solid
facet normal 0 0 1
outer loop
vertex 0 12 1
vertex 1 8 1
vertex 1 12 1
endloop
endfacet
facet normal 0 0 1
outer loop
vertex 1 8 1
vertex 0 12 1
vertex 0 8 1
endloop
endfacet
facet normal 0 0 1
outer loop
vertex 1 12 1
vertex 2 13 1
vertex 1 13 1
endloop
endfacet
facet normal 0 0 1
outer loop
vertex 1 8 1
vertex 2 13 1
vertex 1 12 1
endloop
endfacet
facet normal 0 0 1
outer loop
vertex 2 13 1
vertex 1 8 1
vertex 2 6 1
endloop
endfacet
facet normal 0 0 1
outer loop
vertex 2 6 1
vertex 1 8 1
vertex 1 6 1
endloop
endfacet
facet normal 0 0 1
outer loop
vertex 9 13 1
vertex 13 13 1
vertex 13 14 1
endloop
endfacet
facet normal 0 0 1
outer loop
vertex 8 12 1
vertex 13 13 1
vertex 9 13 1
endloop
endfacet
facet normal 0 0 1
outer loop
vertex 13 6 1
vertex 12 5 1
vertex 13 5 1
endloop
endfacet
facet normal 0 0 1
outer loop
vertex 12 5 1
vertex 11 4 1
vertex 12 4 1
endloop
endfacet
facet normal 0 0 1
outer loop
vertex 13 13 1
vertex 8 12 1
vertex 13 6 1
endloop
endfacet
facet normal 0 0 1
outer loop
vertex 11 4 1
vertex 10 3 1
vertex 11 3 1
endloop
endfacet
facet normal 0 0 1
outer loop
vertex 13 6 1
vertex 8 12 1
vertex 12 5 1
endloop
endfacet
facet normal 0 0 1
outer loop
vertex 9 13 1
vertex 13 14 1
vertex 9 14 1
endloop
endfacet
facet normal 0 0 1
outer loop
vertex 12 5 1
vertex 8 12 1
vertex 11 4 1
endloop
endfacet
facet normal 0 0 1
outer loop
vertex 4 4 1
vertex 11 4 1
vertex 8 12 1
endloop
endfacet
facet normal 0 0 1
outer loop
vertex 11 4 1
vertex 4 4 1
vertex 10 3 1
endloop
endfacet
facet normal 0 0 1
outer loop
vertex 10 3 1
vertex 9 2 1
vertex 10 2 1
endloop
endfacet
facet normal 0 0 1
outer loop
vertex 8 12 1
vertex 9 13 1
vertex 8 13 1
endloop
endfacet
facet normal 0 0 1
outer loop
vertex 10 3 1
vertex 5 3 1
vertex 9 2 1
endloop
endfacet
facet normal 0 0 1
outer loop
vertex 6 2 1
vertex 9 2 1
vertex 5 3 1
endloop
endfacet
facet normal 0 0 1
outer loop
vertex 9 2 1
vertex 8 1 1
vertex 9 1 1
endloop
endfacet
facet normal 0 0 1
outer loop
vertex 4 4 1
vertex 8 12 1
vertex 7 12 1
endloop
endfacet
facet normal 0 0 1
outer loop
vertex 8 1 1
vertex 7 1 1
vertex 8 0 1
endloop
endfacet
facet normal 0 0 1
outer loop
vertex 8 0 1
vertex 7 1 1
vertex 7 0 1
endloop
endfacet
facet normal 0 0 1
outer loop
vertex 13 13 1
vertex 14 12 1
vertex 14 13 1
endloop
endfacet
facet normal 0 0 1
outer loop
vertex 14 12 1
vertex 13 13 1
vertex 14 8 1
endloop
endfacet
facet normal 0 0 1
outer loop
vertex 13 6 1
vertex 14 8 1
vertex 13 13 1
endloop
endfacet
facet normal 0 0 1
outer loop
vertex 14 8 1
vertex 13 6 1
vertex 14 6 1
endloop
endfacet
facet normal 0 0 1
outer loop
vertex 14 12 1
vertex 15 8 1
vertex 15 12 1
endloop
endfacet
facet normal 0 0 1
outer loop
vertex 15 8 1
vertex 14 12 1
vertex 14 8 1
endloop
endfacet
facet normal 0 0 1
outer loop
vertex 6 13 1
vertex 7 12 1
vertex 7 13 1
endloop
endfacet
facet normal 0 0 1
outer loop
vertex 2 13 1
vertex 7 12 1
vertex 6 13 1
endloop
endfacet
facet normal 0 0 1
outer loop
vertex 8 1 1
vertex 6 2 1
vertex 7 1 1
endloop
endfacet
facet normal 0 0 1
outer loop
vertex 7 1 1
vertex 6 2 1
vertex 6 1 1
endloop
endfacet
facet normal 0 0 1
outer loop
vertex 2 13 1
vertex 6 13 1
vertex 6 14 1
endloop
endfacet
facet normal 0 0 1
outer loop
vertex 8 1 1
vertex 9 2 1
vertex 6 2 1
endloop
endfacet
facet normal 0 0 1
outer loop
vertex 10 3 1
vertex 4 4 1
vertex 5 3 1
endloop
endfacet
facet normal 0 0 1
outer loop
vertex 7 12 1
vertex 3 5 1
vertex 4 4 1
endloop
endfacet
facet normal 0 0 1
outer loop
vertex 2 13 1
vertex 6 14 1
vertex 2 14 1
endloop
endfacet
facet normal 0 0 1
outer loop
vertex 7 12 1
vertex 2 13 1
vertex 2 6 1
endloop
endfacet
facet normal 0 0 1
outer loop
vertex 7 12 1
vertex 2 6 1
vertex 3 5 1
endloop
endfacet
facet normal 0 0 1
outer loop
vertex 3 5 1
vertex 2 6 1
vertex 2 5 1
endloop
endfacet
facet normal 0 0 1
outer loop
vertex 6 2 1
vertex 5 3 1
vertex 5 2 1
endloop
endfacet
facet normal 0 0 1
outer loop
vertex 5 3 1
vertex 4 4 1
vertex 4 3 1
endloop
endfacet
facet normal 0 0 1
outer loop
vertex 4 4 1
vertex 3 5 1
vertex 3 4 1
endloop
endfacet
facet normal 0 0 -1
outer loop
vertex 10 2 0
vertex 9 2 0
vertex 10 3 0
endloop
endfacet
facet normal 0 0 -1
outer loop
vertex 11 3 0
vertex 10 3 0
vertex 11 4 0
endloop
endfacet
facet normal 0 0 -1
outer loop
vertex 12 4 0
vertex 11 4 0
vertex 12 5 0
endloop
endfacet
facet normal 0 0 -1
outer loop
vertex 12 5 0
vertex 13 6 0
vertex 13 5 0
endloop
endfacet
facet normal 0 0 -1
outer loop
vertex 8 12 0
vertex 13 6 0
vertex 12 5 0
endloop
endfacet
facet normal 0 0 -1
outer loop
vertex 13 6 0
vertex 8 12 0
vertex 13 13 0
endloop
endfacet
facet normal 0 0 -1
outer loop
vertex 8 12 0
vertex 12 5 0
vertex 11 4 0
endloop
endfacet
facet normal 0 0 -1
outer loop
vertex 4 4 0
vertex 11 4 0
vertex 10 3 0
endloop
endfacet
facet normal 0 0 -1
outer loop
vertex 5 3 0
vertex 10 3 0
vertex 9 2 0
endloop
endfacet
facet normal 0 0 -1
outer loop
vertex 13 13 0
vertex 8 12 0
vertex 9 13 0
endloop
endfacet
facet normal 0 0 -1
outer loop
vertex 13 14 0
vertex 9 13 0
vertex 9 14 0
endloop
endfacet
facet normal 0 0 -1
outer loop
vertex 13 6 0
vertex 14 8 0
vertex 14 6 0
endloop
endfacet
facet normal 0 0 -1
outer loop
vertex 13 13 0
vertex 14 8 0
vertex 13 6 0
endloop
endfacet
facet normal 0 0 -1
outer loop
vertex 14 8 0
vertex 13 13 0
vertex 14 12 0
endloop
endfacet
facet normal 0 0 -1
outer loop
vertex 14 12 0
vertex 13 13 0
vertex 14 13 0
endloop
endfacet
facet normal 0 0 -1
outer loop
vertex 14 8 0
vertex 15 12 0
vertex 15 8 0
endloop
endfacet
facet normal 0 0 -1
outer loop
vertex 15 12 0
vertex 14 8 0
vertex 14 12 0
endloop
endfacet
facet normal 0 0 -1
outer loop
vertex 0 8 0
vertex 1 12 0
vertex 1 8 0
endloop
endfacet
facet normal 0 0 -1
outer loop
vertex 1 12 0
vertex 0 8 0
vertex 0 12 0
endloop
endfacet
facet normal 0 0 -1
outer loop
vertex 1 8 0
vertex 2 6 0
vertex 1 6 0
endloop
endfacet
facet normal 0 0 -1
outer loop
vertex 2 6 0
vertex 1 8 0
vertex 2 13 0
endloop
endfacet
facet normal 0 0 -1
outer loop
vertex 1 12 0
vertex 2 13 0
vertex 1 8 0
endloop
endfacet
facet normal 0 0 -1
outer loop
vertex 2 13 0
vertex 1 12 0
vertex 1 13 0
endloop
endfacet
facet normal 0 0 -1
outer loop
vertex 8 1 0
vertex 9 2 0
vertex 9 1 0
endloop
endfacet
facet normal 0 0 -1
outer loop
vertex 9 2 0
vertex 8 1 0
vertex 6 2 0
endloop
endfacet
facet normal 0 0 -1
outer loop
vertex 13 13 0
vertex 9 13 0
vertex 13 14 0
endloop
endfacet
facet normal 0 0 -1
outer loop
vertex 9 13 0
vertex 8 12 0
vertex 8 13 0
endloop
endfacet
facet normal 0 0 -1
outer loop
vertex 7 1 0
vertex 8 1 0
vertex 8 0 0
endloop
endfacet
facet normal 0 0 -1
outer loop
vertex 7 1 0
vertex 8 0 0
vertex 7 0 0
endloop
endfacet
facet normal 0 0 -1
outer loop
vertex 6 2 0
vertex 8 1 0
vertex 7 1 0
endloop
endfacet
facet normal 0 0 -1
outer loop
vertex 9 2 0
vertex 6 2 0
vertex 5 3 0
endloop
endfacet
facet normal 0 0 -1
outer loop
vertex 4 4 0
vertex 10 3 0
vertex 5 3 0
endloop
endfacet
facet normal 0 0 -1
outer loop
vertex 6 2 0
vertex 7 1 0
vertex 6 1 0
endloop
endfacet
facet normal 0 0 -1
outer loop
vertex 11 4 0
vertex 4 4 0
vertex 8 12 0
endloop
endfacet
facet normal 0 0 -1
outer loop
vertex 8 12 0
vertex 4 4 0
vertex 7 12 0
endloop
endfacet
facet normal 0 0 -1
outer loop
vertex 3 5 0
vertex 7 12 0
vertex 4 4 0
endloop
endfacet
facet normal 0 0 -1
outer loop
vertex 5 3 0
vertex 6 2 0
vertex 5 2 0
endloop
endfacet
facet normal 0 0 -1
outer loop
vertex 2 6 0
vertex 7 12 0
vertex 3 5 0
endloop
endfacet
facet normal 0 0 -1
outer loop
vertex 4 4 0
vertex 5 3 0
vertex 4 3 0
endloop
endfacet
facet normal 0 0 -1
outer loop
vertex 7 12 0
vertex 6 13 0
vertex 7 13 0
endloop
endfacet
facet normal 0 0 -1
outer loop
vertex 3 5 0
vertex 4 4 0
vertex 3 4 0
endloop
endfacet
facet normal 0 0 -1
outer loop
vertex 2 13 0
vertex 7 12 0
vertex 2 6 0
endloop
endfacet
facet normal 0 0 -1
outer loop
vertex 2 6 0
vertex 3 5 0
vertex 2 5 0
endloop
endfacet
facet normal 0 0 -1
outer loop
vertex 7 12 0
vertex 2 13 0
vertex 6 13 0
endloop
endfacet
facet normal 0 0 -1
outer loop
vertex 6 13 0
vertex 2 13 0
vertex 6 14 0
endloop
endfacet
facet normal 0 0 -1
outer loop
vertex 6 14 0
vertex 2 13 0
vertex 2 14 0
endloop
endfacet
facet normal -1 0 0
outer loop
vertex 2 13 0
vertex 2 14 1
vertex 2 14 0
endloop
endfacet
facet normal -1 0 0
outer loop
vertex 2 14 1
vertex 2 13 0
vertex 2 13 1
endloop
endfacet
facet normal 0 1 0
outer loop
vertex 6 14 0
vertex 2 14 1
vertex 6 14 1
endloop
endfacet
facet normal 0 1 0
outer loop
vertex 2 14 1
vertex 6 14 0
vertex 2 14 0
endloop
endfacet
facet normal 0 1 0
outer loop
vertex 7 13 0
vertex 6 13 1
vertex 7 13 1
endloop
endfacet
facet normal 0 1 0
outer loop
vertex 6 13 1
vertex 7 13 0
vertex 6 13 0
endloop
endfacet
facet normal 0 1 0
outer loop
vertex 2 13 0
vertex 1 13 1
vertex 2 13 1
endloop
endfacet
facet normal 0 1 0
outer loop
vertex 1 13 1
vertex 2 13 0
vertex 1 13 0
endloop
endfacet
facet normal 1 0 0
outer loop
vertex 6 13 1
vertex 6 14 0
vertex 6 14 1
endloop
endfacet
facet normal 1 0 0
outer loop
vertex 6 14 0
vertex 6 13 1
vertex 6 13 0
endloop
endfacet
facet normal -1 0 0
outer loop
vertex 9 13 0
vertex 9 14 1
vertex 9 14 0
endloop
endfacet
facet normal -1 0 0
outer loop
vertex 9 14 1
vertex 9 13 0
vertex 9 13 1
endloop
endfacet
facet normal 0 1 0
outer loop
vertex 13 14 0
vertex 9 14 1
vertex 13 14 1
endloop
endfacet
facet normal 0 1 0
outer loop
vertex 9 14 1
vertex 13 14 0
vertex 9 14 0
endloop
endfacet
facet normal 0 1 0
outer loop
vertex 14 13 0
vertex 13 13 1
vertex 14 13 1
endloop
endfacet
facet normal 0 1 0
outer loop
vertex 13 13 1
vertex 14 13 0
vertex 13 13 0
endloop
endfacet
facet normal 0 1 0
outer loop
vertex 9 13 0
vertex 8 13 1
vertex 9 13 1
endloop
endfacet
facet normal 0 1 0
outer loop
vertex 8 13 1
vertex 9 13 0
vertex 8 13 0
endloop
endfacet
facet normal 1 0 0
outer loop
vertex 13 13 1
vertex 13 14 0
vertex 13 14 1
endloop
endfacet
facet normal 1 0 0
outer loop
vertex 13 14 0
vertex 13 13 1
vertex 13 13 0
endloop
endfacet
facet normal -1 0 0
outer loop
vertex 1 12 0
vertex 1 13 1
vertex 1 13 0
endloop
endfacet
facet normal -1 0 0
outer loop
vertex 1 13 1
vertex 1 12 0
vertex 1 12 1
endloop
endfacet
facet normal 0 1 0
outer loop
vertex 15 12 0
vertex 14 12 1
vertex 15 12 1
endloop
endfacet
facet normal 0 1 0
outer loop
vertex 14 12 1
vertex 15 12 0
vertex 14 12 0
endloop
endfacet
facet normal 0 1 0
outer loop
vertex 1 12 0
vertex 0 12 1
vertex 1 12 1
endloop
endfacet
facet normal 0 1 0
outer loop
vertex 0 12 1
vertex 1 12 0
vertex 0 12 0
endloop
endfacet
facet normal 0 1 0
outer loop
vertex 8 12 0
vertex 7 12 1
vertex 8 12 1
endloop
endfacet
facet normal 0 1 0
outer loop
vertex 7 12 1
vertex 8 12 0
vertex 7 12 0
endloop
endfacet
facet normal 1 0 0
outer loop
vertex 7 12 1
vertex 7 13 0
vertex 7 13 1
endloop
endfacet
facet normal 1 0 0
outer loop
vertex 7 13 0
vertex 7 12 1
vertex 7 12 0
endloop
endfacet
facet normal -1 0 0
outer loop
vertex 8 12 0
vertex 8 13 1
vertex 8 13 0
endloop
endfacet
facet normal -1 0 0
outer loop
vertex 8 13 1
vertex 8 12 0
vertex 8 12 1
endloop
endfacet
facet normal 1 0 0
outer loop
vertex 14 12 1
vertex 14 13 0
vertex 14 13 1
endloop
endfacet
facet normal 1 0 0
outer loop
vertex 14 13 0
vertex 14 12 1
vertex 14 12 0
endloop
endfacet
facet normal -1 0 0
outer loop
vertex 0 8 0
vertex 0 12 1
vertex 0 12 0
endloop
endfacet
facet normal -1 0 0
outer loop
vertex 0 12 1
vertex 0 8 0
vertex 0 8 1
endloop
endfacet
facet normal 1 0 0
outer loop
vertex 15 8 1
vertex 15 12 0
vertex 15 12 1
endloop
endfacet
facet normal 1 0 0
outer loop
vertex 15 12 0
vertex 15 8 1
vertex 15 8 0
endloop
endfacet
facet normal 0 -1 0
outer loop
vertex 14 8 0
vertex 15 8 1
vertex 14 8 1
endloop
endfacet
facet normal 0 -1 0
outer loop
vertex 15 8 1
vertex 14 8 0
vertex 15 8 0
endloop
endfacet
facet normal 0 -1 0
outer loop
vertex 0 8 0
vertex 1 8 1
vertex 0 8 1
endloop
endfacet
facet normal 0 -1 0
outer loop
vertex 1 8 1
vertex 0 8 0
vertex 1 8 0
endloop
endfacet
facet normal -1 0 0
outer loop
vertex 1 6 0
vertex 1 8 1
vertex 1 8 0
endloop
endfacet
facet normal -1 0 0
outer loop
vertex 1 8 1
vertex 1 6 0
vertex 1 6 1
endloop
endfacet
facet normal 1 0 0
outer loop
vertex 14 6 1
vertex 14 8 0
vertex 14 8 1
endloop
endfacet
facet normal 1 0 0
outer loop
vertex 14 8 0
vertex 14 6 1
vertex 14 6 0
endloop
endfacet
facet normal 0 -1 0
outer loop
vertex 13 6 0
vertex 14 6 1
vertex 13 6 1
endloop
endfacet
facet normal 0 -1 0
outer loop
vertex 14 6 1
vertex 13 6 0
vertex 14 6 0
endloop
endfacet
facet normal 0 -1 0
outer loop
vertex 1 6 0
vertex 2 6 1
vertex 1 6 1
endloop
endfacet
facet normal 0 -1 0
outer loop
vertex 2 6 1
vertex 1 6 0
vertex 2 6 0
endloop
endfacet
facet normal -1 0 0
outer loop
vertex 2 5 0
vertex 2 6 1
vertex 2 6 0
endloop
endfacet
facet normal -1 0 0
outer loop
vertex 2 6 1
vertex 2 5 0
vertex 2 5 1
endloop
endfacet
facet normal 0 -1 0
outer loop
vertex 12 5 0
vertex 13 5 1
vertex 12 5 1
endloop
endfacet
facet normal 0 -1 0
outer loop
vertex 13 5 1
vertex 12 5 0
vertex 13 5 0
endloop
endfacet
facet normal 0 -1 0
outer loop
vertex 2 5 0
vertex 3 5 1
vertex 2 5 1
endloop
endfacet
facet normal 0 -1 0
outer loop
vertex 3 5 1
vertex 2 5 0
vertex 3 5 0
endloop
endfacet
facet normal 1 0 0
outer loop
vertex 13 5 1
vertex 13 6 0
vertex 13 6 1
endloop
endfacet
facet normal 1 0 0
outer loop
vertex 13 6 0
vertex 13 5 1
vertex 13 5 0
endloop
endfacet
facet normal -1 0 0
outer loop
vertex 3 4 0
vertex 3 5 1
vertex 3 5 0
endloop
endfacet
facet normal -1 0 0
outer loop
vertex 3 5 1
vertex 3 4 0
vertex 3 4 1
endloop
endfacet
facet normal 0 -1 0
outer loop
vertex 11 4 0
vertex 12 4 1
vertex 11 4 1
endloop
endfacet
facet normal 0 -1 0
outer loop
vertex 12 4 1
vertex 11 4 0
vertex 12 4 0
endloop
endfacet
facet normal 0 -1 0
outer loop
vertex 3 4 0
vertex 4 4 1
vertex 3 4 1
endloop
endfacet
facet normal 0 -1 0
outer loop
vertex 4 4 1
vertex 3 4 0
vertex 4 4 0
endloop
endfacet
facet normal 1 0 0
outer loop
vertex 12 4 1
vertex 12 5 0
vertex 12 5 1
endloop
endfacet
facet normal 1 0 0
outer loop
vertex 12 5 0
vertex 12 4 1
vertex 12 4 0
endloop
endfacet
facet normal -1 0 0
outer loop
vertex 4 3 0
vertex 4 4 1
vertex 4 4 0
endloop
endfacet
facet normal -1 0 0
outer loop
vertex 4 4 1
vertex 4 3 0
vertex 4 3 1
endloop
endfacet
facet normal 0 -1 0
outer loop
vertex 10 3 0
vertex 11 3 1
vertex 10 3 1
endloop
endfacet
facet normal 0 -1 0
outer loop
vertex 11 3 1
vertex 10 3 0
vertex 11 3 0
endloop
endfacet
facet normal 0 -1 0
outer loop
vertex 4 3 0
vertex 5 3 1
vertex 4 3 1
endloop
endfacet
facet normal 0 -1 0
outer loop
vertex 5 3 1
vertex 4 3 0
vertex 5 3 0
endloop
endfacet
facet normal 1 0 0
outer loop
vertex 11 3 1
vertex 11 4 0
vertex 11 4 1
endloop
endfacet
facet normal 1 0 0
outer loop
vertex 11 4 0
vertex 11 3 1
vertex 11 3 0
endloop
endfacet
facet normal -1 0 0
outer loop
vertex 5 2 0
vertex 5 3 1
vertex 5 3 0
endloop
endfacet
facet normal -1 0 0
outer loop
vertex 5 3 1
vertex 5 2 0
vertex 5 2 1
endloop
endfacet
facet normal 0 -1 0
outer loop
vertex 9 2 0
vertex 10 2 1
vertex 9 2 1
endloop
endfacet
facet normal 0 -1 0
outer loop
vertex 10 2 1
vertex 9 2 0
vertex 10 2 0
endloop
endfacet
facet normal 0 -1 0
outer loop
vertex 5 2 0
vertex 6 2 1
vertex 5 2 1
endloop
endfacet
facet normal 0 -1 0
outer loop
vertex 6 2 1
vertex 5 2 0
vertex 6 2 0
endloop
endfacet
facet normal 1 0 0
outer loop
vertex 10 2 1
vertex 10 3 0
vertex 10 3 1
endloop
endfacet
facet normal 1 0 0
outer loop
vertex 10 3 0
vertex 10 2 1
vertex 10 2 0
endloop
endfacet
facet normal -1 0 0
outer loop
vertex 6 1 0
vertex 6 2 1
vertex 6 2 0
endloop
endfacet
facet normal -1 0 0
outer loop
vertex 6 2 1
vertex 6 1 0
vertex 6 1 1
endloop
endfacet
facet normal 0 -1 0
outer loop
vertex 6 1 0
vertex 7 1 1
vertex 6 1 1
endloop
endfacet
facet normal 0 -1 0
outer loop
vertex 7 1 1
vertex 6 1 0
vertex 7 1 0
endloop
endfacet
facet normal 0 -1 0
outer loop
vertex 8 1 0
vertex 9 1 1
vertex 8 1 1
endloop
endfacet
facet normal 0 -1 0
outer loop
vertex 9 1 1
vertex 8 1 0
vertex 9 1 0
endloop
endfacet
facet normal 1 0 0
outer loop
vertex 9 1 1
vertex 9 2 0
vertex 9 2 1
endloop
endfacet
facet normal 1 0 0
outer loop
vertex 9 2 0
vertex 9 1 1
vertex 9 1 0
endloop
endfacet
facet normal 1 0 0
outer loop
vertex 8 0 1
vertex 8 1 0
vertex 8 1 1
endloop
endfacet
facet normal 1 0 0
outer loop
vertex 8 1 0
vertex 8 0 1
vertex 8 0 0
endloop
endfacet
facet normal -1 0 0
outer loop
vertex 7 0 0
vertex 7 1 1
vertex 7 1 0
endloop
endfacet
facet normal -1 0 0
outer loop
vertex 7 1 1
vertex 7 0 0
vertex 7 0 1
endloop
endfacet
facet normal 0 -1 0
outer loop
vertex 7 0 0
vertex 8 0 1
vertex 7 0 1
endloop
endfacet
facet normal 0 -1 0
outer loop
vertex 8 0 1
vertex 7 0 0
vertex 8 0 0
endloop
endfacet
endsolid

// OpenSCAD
/*
 * 3D Pixel Art - Heart 1
 * Copyright (c) 2019 Anar Software LLC. < http://anars.com >
 *
 * This program is free software: you can redistribute it and/or modify it under
 * the terms of the GNU General Public License as published by the Free Software
 * Foundation, either version 3 of the License, or (at your option) any later
 * version.
 *
 * This program is distributed in the hope that it will be useful, but WITHOUT
 * ANY WARRANTY; without even the implied warranty of MERCHANTABILITY or FITNESS
 * FOR A PARTICULAR PURPOSE. See the GNU General Public License for more details.
 *
 * You should have received a copy of the GNU General Public License along with
 * this program. If not, see < http://www.gnu.org/licenses/ >
 *
 */

/* [Global] */

/* [Pixel Settings] */

// Pixel Length (X)
pixel_length = 1;

// Pixel Width (Y)
pixel_width = 1;

// Pixel Height (Z)
pixel_height = 1;

/* [Hidden] */

data=[[
     "  XXXX   XXXX",
     " XXXXXX XXXXXX",
     "XXXXXXXXXXXXXXX",
     "XXXXXXXXXXXXXXX",
     "XXXXXXXXXXXXXXX",
     "XXXXXXXXXXXXXXX",
     " XXXXXXXXXXXXX",
     " XXXXXXXXXXXXX",
     "  XXXXXXXXXXX",
     "   XXXXXXXXX",
     "    XXXXXXX",
     "     XXXXX",
     "      XXX",
     "       X"]];

for (z = [0 : len(data) - 1])
    for (y = [0 : len(data[z]) - 1])
        if (len(data[z][y]) > 0)
            for (x = [0 : len(data[z][y]) - 1])
                if (data[z][y][x] == "X")
                    translate([x * pixel_length, (len(data[z]) - 1 - y) * pixel_width, z * pixel_height])
                        cube([pixel_length, pixel_width, pixel_height]);
